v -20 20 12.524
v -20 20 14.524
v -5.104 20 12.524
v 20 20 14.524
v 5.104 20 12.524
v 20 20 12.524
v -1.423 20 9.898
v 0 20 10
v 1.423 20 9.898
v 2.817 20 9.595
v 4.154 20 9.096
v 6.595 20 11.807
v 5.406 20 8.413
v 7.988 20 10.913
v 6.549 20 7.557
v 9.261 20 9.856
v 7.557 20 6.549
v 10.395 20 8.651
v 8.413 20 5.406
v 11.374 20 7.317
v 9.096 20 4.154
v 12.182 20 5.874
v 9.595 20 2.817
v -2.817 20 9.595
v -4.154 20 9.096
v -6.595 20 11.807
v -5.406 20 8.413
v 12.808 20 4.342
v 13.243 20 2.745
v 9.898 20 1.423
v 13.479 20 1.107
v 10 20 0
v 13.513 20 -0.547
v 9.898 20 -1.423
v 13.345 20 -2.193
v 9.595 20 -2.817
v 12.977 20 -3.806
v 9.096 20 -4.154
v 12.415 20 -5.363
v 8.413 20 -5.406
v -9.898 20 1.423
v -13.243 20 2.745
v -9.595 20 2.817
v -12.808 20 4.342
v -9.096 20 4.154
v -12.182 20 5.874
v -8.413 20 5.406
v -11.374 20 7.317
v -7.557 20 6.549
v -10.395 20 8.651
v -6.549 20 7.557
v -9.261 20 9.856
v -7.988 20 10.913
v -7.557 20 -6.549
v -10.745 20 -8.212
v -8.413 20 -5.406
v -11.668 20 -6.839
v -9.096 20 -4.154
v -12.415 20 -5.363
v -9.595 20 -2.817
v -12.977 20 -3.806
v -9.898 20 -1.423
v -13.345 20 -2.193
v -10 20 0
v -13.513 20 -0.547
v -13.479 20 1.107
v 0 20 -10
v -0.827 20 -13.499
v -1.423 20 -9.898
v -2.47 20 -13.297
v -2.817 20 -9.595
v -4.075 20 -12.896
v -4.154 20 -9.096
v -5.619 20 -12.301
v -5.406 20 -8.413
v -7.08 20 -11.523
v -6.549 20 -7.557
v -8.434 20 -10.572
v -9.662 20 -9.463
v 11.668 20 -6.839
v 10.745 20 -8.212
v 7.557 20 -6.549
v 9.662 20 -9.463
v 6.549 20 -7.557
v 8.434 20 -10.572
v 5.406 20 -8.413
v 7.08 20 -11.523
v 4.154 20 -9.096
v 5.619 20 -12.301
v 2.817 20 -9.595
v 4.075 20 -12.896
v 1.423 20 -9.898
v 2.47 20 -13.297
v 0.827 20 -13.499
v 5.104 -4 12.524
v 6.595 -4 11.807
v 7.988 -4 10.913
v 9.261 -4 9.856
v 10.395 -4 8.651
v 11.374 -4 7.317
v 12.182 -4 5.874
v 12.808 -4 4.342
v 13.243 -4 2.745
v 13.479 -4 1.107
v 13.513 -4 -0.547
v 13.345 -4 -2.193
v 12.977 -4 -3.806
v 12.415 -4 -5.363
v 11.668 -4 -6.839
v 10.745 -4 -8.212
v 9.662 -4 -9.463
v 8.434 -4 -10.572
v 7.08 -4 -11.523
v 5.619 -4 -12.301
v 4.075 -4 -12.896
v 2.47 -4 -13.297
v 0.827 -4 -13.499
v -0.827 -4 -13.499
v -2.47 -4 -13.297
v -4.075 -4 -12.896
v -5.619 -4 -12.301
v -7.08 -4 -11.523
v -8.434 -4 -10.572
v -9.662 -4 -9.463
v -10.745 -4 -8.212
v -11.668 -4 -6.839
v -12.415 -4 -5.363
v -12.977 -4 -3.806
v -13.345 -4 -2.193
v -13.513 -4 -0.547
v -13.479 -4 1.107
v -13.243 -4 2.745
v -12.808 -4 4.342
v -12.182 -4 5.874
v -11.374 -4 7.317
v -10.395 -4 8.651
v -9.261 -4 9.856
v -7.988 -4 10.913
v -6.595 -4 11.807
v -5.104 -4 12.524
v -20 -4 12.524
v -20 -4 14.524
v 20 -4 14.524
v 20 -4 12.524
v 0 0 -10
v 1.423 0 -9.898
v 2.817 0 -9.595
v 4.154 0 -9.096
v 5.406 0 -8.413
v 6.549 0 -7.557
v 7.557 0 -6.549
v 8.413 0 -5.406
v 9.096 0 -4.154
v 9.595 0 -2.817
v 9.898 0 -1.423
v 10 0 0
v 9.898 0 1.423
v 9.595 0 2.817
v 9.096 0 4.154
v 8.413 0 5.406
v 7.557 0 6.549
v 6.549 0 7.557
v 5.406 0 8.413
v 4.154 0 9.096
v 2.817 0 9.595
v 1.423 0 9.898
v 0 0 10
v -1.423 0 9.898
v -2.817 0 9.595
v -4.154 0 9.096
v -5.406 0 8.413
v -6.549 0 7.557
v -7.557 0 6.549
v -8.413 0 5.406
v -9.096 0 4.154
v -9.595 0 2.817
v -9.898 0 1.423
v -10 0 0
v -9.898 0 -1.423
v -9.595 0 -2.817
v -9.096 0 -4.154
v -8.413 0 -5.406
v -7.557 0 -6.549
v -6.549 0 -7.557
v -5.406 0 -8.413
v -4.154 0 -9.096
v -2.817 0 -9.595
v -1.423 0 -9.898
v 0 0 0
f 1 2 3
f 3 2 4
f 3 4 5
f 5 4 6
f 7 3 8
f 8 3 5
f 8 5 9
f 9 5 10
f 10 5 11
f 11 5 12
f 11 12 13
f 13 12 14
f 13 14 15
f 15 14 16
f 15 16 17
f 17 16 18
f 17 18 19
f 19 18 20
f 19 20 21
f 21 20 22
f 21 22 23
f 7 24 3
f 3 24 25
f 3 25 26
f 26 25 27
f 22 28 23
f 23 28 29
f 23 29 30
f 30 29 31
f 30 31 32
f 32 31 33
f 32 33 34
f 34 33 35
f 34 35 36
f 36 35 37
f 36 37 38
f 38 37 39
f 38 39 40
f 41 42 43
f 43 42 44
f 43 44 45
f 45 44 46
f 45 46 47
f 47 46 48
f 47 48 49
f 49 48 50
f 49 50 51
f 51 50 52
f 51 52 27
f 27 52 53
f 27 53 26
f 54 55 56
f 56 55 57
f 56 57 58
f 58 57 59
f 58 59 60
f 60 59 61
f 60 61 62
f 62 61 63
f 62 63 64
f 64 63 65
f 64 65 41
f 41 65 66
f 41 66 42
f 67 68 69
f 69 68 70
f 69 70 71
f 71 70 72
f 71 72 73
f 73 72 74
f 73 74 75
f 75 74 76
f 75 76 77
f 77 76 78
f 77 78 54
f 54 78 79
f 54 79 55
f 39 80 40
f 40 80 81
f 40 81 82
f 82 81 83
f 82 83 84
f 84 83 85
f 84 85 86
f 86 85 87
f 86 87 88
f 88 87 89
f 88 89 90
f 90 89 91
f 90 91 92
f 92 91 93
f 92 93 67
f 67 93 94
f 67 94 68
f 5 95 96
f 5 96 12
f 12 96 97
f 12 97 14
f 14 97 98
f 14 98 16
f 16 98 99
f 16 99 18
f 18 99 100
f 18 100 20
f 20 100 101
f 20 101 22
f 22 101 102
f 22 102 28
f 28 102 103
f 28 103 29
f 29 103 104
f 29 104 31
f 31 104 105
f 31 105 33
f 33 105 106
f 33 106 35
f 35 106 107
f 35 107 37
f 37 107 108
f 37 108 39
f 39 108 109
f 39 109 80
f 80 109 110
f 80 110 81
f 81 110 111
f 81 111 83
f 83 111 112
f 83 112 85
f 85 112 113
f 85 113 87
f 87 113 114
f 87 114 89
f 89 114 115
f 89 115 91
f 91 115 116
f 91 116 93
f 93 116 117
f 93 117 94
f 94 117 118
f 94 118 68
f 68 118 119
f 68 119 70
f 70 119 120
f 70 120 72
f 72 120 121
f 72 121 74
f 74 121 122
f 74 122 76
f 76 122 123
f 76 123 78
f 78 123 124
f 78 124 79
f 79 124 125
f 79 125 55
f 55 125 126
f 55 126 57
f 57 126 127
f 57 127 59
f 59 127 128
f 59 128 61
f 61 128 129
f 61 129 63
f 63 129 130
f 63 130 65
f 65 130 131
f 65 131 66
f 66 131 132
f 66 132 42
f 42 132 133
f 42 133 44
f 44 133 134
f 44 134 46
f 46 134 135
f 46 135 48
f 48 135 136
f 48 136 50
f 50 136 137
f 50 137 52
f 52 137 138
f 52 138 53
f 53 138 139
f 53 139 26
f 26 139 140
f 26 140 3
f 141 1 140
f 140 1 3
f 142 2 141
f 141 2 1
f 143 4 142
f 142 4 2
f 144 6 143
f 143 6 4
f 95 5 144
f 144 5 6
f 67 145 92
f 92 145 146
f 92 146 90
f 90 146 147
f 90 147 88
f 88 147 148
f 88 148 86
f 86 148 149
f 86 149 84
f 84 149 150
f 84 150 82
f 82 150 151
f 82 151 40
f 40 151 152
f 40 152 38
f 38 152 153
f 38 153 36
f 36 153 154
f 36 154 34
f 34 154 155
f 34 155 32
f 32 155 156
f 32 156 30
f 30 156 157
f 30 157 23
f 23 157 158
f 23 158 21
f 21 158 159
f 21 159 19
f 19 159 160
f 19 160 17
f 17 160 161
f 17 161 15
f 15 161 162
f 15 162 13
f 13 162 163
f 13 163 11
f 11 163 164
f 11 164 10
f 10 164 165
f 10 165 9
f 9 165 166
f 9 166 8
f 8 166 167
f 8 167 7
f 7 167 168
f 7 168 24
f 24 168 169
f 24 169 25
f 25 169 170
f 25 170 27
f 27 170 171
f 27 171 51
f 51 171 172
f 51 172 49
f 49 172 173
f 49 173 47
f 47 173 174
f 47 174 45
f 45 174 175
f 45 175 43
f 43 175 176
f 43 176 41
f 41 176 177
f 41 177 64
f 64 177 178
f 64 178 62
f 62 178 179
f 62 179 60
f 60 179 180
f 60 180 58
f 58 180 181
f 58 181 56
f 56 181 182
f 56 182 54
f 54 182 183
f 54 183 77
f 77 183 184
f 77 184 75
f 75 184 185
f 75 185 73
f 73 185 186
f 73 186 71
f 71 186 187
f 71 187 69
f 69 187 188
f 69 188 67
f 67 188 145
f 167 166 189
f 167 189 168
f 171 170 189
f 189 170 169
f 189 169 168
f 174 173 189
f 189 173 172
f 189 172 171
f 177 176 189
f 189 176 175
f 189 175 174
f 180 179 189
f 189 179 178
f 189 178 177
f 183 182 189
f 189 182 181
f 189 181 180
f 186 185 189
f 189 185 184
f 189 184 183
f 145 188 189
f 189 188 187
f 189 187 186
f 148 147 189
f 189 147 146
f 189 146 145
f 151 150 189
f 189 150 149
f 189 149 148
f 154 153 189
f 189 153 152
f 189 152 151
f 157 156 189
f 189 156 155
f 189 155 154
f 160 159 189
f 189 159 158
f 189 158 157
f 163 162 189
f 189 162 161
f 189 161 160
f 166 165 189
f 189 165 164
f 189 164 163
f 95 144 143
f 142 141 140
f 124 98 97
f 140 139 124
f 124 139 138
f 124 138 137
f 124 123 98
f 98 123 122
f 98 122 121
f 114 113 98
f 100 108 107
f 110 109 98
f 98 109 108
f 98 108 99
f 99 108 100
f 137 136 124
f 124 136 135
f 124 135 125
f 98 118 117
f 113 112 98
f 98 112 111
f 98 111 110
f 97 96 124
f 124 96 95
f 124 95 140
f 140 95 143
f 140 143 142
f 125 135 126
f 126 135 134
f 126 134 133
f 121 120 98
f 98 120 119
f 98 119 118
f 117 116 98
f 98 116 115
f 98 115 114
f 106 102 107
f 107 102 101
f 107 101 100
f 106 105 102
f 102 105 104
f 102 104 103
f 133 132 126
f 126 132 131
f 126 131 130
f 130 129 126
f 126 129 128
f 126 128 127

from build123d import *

# Parameters (mm, degrees)
SKETCH1_R           = 10
BOSS_EXTRUDE1_DEPTH = 20
BOSS_EXTRUDE2_START = 4
BOSS_EXTRUDE2_DEPTH = 4


with BuildPart() as part:
    # Sketch1 → Boss-Extrude1 (new body)
    with BuildSketch(Plane(origin=(0, 0, 0), x_dir=(1, 0, 0), z_dir=(0, 1, 0))):
        with BuildLine():
            Line((5.103736684, -12.52406407), (20, -12.52406407))
            Line((20, -12.52406407), (20, -14.52406407))
            Line((20, -14.52406407), (-20, -14.52406407))
            Line((-20, -14.52406407), (-20, -12.52406407))
            Line((-20, -12.52406407), (-5.103736684, -12.52406407))
            ThreePointArc((-5.103736684, -12.52406407), (0, 13.52406407), (5.103736684, -12.52406407))
        make_face()
        with Locations(Location((0, 0, 0), (0, 0, 270))):
            Circle(SKETCH1_R, mode=Mode.SUBTRACT)
    extrude(amount=BOSS_EXTRUDE1_DEPTH)

    # Sketch2 → Boss-Extrude2 (add)
    with BuildSketch(Plane.XZ.offset(BOSS_EXTRUDE2_START)):
        with BuildLine():
            Line((5.103736684, 12.52406407), (20, 12.52406407))
            Line((20, 12.52406407), (20, 14.52406407))
            Line((20, 14.52406407), (-20, 14.52406407))
            Line((-20, 14.52406407), (-20, 12.52406407))
            Line((-20, 12.52406407), (-5.103736684, 12.52406407))
            ThreePointArc((-5.103736684, 12.52406407), (0, -13.52406407), (5.103736684, 12.52406407))
        make_face()
    extrude(amount=-BOSS_EXTRUDE2_DEPTH)


solid = part.part
